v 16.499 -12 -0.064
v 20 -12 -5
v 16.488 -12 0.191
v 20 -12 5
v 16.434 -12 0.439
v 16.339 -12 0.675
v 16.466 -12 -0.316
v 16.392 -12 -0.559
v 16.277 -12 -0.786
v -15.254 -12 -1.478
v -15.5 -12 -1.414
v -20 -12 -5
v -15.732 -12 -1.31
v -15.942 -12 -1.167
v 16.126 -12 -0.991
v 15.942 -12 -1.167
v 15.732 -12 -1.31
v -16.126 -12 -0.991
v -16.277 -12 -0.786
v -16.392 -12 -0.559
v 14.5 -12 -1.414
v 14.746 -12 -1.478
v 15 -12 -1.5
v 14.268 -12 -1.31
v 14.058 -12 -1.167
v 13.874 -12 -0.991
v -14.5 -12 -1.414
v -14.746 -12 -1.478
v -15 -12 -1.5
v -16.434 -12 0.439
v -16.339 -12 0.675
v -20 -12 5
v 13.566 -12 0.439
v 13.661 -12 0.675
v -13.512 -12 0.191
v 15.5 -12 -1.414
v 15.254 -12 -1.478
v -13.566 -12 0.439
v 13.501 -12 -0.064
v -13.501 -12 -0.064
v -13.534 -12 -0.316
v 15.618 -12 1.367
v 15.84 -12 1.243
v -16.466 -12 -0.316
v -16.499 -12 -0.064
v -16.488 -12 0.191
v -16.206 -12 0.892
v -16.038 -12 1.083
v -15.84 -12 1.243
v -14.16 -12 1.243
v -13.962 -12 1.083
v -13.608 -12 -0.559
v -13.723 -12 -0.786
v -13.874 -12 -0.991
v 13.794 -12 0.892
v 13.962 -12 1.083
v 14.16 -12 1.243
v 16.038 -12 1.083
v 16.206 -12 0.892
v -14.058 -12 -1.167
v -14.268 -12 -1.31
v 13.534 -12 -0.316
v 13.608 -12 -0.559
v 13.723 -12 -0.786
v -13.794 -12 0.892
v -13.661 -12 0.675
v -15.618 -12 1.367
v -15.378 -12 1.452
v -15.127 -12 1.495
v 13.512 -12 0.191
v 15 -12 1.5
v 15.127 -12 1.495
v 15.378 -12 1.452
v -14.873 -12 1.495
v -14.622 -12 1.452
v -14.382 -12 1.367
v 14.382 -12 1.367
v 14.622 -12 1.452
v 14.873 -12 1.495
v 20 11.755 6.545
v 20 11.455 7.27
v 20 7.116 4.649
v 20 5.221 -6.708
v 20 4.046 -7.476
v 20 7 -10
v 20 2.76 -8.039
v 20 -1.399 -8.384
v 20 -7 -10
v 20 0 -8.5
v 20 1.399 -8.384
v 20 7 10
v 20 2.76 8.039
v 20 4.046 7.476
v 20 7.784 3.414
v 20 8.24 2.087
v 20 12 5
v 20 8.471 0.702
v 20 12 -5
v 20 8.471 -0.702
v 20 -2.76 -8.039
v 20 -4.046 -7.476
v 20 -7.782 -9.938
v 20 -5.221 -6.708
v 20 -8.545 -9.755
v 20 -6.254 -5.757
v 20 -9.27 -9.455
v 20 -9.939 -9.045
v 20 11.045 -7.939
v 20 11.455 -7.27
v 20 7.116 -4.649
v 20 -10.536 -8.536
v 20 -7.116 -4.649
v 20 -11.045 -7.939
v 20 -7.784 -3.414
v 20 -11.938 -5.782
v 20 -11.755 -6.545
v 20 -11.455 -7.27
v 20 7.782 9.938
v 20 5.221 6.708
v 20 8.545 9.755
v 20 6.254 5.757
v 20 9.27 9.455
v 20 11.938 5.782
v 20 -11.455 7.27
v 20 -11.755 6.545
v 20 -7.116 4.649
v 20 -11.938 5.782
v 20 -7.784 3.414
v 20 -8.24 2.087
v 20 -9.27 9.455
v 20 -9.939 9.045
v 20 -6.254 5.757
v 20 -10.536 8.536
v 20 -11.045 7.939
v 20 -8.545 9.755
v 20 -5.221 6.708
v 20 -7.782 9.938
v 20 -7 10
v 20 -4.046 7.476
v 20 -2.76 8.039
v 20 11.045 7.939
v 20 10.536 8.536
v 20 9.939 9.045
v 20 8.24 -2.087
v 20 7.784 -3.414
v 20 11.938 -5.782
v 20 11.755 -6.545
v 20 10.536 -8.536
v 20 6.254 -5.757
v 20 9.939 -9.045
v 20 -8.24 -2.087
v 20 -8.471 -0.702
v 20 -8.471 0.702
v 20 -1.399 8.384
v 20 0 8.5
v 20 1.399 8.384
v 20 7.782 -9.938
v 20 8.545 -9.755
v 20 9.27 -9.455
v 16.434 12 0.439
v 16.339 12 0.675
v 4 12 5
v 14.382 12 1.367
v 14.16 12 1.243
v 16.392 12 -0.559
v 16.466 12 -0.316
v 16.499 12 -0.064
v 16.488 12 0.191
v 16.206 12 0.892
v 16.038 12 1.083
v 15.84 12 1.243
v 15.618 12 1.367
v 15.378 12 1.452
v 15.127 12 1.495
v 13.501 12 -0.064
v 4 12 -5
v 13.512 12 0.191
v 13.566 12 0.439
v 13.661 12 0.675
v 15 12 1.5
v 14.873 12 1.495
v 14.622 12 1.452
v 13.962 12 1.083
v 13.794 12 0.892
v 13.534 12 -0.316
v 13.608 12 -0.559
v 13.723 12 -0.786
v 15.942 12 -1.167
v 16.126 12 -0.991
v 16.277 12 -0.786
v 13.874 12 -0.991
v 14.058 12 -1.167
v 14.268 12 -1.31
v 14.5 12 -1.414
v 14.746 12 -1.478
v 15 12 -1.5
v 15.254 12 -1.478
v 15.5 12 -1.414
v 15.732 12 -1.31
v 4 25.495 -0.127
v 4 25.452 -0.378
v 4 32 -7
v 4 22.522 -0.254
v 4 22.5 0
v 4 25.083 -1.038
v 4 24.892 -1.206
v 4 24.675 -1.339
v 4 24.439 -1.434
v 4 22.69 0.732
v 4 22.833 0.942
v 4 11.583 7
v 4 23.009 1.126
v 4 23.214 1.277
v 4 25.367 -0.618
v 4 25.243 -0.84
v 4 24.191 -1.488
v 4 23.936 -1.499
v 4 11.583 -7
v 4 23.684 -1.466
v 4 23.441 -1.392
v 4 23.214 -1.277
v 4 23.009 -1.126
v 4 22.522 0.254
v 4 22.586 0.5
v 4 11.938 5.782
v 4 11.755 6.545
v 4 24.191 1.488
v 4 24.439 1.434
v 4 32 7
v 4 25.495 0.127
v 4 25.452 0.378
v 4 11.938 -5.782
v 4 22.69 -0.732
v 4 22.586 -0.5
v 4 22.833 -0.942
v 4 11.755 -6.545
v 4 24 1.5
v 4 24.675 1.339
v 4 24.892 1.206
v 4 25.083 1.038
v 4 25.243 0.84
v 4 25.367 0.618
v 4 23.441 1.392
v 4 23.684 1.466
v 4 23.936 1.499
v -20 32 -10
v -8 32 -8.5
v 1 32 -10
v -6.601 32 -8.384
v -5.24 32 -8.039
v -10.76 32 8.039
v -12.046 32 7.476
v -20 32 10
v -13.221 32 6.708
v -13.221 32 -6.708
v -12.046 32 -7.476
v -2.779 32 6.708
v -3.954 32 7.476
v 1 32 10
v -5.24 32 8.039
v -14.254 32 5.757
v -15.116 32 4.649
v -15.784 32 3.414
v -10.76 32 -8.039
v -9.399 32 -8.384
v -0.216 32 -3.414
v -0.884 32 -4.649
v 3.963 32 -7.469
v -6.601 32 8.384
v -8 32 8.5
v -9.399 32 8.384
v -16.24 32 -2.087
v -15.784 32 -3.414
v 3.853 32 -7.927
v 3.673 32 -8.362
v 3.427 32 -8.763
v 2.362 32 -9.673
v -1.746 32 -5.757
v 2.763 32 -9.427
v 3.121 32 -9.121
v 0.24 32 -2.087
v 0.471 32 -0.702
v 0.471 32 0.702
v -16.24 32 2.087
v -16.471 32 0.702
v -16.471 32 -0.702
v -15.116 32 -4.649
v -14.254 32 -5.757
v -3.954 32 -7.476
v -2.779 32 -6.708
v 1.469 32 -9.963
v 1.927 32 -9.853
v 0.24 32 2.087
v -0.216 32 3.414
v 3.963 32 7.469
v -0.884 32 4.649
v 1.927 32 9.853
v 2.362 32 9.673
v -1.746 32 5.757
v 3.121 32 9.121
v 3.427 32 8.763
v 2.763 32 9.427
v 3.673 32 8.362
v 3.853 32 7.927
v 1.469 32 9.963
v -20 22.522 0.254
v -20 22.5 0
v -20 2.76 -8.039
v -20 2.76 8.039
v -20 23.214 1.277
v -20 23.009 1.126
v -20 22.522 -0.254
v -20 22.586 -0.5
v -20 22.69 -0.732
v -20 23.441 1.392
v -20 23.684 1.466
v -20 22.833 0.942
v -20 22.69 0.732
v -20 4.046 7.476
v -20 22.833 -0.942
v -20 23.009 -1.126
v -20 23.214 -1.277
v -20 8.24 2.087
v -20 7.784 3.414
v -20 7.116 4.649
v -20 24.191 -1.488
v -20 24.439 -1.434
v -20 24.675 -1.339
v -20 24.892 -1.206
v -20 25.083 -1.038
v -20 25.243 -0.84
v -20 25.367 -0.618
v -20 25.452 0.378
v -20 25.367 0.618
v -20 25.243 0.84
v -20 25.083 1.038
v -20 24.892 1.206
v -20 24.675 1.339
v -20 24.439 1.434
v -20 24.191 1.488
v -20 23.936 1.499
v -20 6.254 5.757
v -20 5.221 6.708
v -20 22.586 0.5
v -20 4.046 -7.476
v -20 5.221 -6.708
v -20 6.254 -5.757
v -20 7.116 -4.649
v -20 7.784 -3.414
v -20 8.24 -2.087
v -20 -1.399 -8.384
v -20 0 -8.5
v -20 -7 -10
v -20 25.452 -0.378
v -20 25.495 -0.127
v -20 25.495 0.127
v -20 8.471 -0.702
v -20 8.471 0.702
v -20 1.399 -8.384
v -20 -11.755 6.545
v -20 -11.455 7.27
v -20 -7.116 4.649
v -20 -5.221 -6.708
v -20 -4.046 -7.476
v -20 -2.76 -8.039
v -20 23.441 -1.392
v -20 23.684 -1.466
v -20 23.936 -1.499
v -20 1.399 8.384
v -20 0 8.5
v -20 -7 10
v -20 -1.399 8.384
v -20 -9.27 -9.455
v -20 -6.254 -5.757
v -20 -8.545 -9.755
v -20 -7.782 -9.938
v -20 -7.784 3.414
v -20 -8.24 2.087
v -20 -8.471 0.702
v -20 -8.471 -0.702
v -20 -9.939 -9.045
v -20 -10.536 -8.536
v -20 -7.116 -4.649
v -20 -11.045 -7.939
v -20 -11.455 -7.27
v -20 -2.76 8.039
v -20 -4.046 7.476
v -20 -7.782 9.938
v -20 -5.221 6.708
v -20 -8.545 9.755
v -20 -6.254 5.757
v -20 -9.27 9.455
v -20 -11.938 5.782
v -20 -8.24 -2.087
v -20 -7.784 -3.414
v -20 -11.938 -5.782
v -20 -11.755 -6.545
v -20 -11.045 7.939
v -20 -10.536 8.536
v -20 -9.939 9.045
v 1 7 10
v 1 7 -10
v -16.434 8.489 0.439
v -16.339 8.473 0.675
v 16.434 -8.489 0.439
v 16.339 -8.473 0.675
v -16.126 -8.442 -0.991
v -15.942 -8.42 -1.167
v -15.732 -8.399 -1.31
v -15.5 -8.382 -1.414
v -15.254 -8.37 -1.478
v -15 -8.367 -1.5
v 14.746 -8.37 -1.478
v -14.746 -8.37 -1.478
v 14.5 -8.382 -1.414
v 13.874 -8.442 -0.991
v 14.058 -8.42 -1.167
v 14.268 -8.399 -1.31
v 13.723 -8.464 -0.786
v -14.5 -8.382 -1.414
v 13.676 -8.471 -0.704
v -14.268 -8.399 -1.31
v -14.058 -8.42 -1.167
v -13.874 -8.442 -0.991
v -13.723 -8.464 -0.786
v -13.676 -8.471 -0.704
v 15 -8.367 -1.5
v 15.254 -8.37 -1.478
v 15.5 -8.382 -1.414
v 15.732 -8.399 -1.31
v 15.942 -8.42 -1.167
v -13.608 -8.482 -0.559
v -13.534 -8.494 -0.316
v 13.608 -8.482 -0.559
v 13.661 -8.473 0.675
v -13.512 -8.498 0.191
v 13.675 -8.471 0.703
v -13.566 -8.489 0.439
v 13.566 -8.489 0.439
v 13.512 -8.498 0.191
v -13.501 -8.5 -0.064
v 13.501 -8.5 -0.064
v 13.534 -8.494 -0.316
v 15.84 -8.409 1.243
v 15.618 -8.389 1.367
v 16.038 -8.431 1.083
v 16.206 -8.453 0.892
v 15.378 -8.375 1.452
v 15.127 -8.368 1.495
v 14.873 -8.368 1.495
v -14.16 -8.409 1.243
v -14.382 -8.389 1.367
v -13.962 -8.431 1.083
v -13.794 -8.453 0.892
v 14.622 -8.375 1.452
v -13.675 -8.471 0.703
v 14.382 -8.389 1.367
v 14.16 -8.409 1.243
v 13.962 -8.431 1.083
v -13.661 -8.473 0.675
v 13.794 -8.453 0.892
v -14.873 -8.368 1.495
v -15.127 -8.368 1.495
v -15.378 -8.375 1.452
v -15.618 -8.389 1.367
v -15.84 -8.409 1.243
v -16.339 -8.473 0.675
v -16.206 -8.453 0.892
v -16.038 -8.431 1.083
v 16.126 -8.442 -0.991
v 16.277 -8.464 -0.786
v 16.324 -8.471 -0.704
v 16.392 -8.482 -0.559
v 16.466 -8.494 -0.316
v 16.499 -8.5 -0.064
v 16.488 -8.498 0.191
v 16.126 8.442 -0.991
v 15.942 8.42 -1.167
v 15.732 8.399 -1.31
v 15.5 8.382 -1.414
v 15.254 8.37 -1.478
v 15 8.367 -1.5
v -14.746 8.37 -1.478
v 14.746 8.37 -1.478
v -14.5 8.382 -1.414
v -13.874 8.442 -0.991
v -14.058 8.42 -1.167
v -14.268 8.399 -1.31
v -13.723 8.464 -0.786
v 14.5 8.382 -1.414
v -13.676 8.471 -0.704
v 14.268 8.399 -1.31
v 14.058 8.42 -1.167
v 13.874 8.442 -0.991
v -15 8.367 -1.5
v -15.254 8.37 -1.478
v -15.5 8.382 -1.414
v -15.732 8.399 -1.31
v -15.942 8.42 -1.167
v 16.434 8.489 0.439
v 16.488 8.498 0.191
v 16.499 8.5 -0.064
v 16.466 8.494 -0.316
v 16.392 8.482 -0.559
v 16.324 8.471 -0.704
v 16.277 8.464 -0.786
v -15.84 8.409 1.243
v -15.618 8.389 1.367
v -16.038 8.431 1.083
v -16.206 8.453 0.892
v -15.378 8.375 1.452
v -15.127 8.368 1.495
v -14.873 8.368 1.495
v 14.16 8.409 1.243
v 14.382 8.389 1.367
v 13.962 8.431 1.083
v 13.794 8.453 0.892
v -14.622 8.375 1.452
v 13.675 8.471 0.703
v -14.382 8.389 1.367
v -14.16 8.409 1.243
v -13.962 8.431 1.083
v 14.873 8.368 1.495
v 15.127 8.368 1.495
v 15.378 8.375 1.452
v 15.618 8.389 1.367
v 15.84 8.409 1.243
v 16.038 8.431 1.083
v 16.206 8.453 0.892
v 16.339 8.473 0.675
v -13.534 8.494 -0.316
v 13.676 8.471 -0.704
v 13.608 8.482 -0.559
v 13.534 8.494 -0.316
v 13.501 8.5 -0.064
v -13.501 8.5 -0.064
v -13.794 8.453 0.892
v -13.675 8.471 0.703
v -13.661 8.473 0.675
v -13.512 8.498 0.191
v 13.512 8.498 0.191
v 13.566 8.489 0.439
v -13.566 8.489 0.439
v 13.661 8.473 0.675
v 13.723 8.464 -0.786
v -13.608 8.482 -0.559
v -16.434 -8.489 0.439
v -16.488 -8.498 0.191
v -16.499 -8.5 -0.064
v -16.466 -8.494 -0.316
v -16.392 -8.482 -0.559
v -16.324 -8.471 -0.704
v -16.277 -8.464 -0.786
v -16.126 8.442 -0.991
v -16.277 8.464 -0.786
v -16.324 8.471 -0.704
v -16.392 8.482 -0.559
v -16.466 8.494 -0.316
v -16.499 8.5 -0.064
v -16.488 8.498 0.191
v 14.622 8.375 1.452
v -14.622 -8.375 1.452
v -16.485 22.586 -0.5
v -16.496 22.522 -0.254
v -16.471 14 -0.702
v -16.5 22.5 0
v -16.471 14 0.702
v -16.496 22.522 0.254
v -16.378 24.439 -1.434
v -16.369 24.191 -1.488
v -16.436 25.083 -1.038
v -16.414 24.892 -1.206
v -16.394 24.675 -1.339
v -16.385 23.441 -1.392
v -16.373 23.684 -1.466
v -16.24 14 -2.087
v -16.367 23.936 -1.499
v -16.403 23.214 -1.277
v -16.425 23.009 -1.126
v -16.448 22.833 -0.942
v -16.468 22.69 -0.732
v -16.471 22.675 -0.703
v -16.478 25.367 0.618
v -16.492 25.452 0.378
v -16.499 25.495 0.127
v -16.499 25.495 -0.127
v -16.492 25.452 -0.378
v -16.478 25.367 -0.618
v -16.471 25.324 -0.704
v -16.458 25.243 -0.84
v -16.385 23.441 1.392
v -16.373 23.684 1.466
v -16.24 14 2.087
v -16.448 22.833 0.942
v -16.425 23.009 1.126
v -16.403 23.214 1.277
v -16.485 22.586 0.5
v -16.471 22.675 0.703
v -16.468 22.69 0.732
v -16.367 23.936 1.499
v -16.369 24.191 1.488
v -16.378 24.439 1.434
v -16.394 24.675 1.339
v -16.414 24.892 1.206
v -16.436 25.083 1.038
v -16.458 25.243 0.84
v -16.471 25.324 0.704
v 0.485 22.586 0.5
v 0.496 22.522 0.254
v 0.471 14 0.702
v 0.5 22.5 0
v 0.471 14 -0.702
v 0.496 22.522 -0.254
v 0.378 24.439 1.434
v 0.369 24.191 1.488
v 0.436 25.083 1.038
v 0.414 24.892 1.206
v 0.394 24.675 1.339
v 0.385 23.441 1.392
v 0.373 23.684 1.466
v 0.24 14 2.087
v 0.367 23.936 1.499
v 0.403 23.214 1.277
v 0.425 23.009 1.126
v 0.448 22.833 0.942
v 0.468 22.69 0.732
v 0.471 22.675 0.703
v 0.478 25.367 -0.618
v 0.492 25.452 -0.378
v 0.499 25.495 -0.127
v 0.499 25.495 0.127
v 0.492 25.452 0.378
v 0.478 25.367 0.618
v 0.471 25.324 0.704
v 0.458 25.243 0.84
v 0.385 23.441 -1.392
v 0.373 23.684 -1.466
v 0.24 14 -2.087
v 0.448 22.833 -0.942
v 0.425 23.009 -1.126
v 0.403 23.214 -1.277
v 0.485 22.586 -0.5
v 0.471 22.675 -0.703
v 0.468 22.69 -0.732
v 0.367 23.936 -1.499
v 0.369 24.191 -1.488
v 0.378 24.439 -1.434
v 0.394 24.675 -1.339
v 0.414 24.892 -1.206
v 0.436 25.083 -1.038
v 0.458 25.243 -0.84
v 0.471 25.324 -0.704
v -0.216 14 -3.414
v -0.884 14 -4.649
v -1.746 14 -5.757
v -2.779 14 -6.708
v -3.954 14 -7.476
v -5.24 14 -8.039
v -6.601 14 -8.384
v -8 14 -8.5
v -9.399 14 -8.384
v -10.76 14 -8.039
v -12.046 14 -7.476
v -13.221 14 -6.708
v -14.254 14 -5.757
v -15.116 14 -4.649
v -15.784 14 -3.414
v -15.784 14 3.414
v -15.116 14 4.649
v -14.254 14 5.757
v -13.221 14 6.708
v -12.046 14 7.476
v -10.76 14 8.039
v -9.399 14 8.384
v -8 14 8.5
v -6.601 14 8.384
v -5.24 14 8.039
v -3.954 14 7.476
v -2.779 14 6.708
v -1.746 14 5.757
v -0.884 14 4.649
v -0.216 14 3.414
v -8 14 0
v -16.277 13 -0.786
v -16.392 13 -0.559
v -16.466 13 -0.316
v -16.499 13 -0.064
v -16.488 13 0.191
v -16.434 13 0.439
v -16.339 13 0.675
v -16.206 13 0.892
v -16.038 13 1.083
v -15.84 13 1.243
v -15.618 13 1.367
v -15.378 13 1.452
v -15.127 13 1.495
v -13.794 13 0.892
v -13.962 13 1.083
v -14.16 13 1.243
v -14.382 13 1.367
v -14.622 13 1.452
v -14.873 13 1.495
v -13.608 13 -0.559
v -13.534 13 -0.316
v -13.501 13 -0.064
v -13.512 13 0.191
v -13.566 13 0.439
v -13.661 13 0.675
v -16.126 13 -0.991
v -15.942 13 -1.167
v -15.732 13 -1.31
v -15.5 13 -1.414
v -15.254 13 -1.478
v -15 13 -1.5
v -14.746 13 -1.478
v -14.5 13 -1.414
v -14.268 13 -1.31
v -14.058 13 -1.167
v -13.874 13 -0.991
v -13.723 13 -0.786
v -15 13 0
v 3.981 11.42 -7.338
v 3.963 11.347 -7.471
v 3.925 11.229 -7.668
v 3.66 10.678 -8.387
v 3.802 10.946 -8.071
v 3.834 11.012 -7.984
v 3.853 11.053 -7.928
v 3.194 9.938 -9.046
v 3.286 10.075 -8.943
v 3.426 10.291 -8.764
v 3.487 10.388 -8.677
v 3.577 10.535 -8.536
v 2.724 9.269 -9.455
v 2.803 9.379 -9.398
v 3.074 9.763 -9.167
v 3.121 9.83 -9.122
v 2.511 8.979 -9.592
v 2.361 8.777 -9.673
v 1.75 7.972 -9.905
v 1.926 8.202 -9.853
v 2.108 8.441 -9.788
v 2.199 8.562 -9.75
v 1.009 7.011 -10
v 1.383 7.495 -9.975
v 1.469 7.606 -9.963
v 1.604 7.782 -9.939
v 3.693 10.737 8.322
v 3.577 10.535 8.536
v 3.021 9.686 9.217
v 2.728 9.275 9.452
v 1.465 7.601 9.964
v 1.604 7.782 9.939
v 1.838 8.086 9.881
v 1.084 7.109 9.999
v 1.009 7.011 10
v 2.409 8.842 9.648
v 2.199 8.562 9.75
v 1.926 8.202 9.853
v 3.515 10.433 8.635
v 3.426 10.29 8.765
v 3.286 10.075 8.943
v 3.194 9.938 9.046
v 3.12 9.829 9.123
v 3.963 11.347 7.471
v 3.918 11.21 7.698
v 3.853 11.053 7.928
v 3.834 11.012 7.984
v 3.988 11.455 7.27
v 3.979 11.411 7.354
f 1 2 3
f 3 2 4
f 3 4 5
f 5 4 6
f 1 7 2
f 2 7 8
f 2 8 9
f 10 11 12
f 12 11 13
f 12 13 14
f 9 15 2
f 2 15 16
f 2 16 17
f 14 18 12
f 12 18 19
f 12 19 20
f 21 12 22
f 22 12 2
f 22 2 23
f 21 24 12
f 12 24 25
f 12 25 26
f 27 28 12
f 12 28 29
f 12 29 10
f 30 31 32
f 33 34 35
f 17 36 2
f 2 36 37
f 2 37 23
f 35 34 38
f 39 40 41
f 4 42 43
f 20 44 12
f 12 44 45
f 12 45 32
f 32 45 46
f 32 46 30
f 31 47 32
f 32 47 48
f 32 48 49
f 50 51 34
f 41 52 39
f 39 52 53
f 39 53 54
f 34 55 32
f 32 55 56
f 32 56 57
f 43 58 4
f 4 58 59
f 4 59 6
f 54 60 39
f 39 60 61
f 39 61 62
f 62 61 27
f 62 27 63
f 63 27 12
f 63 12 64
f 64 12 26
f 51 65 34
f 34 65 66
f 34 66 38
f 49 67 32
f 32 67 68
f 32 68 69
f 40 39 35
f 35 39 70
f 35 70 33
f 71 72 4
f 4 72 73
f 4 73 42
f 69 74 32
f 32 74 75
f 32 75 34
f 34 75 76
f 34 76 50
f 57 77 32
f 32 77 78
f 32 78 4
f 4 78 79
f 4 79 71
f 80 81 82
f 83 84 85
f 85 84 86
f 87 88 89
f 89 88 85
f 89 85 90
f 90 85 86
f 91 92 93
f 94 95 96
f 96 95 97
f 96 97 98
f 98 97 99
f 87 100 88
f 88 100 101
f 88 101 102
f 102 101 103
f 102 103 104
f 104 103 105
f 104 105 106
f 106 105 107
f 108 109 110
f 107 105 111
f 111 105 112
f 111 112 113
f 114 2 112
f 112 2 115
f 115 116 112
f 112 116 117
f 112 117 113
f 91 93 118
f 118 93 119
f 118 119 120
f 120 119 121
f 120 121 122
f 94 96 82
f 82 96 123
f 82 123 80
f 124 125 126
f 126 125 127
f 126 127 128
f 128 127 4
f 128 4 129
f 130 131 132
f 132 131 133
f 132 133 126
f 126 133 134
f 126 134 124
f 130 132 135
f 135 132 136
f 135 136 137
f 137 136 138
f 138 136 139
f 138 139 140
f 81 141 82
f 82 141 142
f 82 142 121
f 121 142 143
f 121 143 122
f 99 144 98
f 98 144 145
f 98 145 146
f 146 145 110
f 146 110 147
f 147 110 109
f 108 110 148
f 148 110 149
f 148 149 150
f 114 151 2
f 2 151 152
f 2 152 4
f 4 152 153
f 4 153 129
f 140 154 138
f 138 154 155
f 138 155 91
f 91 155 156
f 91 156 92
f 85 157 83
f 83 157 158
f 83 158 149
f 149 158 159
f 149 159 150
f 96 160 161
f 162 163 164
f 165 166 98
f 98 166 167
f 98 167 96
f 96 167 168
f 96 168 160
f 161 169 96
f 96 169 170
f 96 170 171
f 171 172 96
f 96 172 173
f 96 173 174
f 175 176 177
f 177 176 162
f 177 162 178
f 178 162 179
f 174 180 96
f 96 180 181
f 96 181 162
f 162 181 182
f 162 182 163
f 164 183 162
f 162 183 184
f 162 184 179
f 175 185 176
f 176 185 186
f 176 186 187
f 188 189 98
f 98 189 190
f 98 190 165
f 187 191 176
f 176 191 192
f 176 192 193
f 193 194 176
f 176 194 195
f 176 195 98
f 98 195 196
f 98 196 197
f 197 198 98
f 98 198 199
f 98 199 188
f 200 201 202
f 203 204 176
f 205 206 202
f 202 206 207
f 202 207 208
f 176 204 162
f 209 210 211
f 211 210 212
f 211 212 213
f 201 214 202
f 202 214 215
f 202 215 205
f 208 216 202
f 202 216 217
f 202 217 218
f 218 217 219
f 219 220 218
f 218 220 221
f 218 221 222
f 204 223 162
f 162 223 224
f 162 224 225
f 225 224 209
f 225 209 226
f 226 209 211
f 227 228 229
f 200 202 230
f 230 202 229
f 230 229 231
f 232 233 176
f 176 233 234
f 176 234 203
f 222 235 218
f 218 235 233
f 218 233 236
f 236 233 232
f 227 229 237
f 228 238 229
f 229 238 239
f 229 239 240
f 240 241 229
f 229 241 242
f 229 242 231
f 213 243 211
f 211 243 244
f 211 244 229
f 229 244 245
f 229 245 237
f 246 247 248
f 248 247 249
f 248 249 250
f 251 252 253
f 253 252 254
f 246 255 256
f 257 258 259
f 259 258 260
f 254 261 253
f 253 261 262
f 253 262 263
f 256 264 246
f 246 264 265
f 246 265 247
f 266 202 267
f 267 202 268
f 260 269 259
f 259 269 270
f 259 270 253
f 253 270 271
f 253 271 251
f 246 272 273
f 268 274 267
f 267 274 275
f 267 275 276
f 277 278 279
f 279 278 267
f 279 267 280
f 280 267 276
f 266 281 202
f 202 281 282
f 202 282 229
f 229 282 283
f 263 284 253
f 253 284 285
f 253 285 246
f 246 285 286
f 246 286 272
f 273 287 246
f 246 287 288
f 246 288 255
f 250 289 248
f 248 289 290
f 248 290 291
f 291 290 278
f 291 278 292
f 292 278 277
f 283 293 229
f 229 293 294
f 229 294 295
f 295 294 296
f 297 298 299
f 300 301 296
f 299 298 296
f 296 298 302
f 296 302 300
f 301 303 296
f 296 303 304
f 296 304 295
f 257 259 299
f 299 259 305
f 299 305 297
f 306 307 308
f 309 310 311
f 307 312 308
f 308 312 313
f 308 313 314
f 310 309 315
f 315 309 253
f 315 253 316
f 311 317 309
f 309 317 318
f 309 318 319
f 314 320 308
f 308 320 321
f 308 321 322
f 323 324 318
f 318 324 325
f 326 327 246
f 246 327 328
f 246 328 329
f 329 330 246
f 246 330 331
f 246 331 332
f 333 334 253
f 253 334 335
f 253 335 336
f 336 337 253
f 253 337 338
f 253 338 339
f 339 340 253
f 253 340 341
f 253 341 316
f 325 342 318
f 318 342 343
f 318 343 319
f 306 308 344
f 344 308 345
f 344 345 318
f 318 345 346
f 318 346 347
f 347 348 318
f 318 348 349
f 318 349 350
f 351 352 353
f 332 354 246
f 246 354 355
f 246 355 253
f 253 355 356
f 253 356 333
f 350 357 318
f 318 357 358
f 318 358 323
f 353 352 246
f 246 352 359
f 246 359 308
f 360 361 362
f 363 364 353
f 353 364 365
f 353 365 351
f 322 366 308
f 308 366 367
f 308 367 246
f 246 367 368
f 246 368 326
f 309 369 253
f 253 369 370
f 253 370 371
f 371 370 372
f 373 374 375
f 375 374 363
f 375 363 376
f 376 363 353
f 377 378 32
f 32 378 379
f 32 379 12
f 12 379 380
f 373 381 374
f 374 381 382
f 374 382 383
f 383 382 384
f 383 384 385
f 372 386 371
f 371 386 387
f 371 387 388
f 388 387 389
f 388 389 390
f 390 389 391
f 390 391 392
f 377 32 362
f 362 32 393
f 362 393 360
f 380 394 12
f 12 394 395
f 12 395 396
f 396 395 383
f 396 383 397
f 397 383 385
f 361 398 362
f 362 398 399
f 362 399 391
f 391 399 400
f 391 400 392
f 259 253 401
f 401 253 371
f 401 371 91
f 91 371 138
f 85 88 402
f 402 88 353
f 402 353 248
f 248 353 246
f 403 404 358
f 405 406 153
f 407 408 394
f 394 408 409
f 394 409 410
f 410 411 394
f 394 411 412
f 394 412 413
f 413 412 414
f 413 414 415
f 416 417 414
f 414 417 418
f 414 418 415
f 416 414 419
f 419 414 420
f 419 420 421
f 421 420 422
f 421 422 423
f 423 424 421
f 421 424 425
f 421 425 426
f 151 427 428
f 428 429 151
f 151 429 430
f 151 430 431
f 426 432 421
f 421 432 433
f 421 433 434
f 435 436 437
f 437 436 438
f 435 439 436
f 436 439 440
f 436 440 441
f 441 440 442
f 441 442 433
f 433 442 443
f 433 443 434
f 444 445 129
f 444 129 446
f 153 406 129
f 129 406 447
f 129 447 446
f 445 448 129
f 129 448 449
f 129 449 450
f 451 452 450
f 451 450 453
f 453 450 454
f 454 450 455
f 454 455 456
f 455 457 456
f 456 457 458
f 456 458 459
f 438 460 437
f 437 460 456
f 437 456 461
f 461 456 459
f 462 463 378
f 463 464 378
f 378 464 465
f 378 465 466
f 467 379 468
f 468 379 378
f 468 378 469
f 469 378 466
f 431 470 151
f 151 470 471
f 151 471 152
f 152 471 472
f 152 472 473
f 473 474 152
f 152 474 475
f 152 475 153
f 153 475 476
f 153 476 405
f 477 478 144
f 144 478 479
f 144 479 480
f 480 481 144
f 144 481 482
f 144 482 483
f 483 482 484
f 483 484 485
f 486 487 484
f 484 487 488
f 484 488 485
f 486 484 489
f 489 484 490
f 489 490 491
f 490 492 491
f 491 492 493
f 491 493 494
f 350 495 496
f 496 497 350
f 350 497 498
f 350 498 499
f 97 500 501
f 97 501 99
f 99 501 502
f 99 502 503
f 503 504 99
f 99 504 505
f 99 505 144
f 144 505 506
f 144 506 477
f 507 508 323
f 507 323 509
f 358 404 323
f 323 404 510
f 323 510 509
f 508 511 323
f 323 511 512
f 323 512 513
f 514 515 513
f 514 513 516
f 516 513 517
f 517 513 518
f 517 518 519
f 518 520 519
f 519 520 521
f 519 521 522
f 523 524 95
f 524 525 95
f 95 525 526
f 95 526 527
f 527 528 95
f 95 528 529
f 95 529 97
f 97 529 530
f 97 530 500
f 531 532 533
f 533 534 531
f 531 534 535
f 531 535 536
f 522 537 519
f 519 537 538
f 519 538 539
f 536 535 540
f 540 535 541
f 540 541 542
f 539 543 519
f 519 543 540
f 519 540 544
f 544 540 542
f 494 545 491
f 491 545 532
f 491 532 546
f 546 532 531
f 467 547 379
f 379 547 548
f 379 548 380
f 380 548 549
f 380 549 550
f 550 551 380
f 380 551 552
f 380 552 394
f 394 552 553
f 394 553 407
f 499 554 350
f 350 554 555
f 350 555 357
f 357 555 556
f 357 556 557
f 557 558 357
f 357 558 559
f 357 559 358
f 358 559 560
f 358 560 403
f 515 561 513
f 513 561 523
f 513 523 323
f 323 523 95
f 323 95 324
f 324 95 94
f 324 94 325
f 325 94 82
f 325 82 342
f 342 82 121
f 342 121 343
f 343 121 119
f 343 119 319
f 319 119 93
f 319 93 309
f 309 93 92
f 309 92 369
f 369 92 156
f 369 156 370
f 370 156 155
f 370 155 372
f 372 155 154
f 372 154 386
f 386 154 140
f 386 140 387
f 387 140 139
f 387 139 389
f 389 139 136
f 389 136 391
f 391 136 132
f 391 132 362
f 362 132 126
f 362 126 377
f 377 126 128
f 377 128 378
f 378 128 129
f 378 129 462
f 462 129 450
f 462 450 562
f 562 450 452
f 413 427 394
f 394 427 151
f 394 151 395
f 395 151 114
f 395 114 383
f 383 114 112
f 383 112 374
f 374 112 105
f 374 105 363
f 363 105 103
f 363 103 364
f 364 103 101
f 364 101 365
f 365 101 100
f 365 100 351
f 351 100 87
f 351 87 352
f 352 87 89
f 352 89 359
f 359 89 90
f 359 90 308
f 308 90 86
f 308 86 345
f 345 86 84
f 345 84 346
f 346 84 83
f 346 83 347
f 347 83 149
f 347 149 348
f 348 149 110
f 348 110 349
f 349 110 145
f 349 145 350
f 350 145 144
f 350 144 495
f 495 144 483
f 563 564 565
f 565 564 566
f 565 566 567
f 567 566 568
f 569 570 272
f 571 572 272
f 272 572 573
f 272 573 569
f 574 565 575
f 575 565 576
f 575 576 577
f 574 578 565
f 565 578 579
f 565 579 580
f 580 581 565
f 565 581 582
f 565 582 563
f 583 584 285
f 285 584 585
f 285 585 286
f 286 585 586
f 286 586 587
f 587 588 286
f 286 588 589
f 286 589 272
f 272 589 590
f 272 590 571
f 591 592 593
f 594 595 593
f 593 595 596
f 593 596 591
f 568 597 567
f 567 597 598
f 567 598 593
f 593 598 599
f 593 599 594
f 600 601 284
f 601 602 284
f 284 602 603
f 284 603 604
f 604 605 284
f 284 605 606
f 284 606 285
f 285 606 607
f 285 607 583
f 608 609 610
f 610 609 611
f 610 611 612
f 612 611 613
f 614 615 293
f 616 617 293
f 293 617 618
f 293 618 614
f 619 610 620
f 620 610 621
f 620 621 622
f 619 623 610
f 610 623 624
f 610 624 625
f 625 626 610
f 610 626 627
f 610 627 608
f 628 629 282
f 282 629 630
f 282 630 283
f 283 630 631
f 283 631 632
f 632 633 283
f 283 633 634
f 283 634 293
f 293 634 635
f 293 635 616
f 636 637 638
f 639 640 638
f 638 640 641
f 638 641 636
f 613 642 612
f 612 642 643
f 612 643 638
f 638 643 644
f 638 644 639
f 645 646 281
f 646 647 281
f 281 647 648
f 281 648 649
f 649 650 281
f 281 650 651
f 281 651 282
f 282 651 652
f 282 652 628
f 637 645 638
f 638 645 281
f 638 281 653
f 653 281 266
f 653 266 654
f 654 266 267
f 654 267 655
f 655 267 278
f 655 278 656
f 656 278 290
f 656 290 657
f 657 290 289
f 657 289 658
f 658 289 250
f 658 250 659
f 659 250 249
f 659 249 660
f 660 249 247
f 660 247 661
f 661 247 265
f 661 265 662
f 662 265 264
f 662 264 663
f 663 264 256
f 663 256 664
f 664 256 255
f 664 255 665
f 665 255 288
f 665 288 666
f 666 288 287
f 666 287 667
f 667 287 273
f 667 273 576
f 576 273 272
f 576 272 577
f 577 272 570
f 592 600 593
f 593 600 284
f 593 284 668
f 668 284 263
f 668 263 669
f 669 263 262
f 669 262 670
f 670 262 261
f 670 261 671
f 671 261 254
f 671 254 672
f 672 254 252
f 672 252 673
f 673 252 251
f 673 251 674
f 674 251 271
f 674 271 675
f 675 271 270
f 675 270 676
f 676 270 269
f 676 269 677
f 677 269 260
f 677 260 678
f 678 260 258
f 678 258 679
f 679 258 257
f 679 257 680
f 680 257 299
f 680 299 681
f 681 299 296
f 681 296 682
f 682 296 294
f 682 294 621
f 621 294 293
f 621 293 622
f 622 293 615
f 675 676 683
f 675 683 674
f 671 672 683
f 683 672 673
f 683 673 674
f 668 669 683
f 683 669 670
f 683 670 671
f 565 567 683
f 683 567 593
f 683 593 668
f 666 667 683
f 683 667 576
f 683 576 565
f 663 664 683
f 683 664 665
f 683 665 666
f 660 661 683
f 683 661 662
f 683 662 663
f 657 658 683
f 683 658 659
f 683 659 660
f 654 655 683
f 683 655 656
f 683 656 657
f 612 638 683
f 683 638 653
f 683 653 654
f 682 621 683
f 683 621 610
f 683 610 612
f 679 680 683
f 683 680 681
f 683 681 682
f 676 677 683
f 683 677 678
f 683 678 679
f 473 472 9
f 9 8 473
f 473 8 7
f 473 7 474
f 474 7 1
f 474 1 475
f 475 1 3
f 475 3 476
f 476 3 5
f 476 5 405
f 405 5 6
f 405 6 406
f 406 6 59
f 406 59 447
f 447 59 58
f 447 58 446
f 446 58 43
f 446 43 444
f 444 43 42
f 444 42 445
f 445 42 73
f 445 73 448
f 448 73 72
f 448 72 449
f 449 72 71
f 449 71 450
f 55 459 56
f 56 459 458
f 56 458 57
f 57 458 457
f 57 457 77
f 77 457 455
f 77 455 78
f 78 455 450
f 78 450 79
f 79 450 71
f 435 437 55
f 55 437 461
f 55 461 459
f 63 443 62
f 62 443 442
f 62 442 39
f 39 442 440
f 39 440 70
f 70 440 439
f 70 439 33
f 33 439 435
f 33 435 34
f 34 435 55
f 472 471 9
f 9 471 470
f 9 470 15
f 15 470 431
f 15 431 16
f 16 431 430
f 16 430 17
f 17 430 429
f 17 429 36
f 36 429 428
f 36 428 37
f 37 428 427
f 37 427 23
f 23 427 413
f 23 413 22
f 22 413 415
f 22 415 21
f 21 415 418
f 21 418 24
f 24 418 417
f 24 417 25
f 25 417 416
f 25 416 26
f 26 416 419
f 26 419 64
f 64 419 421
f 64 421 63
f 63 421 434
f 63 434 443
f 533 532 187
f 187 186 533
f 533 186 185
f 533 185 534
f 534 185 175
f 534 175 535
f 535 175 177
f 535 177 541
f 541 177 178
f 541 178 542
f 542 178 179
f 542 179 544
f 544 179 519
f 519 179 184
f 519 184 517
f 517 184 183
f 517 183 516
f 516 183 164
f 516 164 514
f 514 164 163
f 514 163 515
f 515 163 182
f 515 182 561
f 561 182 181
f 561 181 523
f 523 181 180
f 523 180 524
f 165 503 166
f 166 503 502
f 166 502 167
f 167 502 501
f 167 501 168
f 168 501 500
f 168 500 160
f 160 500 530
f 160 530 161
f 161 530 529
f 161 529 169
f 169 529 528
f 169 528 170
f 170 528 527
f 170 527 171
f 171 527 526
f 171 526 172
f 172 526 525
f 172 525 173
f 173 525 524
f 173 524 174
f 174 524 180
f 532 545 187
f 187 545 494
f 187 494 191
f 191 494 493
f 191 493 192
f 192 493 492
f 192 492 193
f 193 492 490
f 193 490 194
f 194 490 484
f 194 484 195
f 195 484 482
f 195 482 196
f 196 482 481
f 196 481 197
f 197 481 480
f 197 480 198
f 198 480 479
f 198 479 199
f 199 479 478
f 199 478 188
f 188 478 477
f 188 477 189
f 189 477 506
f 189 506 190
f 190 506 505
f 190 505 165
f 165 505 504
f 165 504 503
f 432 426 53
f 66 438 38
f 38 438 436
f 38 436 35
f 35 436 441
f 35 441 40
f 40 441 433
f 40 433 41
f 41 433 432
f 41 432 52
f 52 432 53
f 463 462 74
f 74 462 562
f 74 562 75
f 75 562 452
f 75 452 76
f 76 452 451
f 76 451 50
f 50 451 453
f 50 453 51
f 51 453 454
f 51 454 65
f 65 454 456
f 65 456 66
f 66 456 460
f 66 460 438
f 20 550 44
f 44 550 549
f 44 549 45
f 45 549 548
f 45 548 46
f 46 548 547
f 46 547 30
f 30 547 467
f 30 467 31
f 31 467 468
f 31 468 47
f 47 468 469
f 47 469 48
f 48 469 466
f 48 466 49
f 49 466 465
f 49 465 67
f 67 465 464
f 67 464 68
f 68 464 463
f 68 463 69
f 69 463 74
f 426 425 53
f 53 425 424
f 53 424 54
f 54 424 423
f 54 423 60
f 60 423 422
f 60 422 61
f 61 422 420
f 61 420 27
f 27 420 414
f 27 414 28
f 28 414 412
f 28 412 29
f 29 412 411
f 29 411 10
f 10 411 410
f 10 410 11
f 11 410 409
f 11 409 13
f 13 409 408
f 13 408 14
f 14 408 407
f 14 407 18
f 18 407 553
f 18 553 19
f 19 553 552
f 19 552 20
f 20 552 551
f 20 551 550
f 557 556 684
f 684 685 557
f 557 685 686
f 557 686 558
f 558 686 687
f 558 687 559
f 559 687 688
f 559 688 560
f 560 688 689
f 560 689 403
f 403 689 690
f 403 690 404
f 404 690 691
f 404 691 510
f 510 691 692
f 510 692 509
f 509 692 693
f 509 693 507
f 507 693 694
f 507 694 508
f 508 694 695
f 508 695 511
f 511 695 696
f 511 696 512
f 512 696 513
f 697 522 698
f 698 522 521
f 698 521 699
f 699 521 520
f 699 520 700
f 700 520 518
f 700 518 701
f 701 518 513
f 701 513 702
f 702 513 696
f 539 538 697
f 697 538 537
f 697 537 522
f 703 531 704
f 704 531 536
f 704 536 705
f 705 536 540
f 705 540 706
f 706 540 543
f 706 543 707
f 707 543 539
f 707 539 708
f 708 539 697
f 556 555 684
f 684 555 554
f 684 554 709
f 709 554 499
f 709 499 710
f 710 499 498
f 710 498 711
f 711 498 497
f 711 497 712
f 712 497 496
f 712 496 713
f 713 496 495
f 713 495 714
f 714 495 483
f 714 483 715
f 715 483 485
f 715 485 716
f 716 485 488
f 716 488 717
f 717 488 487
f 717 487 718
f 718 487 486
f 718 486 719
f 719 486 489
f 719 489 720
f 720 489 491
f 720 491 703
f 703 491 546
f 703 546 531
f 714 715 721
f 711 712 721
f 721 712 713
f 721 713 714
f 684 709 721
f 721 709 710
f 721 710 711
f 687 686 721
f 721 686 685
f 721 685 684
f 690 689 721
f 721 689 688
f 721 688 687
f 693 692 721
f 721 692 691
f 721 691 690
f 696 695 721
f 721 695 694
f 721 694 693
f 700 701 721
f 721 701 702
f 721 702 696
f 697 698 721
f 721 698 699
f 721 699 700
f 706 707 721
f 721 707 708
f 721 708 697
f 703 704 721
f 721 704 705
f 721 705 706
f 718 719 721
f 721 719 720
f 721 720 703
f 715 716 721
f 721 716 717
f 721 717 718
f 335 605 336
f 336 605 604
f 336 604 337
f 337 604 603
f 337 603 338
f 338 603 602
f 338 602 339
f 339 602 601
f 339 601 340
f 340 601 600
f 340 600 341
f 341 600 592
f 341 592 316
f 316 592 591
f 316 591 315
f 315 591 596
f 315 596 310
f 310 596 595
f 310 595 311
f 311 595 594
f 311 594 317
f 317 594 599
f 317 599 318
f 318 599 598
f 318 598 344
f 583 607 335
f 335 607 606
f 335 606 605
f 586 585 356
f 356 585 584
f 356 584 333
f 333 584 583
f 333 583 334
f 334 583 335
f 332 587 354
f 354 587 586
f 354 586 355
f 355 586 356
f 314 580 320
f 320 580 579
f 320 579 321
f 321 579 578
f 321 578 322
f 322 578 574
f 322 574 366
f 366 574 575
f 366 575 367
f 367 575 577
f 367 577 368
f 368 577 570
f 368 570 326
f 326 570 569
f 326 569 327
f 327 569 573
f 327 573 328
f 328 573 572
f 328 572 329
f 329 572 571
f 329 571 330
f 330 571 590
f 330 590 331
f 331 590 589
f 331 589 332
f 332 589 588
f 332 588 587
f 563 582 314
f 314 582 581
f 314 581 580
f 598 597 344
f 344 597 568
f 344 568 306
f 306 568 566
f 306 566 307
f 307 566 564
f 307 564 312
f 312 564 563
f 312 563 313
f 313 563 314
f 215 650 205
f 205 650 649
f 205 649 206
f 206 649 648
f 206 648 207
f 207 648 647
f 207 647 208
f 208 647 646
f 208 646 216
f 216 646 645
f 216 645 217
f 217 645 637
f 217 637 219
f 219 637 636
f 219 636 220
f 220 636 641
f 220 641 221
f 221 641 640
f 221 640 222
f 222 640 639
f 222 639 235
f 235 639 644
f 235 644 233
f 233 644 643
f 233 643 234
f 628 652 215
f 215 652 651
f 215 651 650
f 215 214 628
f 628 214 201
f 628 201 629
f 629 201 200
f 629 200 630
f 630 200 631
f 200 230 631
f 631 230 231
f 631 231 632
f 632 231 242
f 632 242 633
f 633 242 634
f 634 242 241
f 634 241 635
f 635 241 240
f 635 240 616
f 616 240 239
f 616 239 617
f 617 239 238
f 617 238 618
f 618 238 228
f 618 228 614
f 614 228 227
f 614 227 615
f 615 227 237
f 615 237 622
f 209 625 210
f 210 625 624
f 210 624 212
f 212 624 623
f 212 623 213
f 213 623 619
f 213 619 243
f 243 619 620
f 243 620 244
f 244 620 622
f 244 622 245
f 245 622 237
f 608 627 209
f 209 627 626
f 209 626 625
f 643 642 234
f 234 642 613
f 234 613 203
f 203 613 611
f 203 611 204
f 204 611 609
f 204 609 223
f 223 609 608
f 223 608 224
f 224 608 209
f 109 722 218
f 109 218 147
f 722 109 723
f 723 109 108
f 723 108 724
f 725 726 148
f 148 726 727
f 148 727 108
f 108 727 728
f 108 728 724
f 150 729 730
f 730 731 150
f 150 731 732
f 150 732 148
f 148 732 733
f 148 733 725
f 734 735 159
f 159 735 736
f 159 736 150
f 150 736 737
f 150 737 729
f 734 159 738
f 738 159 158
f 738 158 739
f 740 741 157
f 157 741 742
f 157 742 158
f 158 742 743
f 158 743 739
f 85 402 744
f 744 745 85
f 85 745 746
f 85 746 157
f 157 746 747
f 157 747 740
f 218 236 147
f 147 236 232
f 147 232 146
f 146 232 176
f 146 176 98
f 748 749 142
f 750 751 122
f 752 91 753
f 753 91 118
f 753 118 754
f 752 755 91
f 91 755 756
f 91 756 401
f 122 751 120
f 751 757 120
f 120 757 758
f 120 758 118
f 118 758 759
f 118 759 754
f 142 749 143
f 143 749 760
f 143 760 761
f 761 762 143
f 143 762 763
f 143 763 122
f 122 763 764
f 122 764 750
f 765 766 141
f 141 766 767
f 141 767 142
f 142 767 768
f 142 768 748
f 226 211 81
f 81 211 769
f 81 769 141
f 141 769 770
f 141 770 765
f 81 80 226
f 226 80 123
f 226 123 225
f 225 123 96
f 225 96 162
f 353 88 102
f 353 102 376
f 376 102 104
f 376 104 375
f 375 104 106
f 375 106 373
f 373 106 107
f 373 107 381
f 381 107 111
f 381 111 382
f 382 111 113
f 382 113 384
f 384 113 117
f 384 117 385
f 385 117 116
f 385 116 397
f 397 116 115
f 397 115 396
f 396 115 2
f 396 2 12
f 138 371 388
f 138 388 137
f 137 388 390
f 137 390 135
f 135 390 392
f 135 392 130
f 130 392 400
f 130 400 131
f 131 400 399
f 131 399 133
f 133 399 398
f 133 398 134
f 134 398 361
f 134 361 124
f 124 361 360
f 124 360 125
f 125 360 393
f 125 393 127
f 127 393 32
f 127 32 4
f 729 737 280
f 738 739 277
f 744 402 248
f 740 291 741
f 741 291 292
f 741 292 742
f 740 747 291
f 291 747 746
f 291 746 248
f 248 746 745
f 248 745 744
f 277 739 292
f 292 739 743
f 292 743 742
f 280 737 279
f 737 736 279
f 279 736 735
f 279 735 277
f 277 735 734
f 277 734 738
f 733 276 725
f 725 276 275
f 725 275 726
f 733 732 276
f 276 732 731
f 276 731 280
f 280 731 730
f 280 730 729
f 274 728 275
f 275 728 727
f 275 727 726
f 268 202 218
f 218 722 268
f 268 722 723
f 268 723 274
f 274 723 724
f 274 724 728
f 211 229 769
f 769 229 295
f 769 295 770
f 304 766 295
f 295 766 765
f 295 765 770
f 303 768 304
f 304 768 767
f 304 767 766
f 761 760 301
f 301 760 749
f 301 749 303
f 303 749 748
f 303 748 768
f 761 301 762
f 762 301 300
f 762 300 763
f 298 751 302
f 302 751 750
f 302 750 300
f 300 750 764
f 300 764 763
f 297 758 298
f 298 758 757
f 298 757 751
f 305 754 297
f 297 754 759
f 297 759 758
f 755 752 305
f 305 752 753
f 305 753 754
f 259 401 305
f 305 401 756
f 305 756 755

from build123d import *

# Parameters (mm, degrees)
CROQUIS1_W              = 40
CROQUIS1_H              = 24
CROQUIS1_W_2            = 24
CROQUIS1_H_2            = 20
SALIENTE_EXTRUIR1_DEPTH = 10
CROQUIS3_R              = 8.5
CORTAR_EXTRUIR1_DEPTH   = 70
CROQUIS4_R              = 8.5
CORTAR_EXTRUIR2_DEPTH   = 18
CROQUIS5_R              = 1.5
CORTAR_EXTRUIR3_DEPTH   = 25
CROQUIS6_R              = 1.5
CORTAR_EXTRUIR4_DEPTH   = 30
REDONDEO1_R             = 5
REDONDEO2_R             = 3


with BuildPart() as part:
    # Croquis1 → Saliente-Extruir1 (new, symmetric)
    with BuildSketch(Plane.XY):
        Rectangle(CROQUIS1_W, CROQUIS1_H)
        with Locations((-8, 22)):
            Rectangle(CROQUIS1_W_2, CROQUIS1_H_2)
    extrude(amount=SALIENTE_EXTRUIR1_DEPTH, both=True)

    # Croquis3 → Cortar-Extruir1 (cut)
    with BuildSketch(Plane(origin=(20, 0, 0), x_dir=(0, 0, -1), z_dir=(1, 0, 0))):
        Circle(CROQUIS3_R)
    extrude(amount=-CORTAR_EXTRUIR1_DEPTH, mode=Mode.SUBTRACT)

    # Croquis4 → Cortar-Extruir2 (cut)
    with BuildSketch(Plane(origin=(0, 32, 0), x_dir=(1, 0, 0), z_dir=(0, 1, 0))):
        with Locations(Location((-8, 0, 0), (0, 0, 270))):
            Circle(CROQUIS4_R)
    extrude(amount=-CORTAR_EXTRUIR2_DEPTH, mode=Mode.SUBTRACT)

    # Croquis5 → Cortar-Extruir3 (cut)
    with BuildSketch(Plane.XZ.offset(12)):
        with Locations(Location((-15, 0, 0), (0, 0, 270))):
            Circle(CROQUIS5_R)
        with Locations(Location((15, 0, 0), (0, 0, 270))):
            Circle(CROQUIS5_R)
    extrude(amount=-CORTAR_EXTRUIR3_DEPTH, mode=Mode.SUBTRACT)

    # Croquis6 → Cortar-Extruir4 (cut)
    with BuildSketch(Plane.ZY.offset(20)):
        with Locations(Location((0, 24, 0), (0, 0, 270))):
            Circle(CROQUIS6_R)
    extrude(amount=-CORTAR_EXTRUIR4_DEPTH, mode=Mode.SUBTRACT)

    # Redondeo1
    redondeo1_edges = [part.edges().sort_by_distance(p)[0] for p in [
        (0, -12, -10),
        (12, 12, 10),
        (0, -12, 10),
        (12, 12, -10),
    ]]
    fillet(redondeo1_edges, radius=REDONDEO1_R)

    # Redondeo2
    redondeo2_edges = [part.edges().sort_by_distance(p)[0] for p in [
        (4, 19.5, 10),
        (4, 19.5, -10),
    ]]
    fillet(redondeo2_edges, radius=REDONDEO2_R)


solid = part.part
